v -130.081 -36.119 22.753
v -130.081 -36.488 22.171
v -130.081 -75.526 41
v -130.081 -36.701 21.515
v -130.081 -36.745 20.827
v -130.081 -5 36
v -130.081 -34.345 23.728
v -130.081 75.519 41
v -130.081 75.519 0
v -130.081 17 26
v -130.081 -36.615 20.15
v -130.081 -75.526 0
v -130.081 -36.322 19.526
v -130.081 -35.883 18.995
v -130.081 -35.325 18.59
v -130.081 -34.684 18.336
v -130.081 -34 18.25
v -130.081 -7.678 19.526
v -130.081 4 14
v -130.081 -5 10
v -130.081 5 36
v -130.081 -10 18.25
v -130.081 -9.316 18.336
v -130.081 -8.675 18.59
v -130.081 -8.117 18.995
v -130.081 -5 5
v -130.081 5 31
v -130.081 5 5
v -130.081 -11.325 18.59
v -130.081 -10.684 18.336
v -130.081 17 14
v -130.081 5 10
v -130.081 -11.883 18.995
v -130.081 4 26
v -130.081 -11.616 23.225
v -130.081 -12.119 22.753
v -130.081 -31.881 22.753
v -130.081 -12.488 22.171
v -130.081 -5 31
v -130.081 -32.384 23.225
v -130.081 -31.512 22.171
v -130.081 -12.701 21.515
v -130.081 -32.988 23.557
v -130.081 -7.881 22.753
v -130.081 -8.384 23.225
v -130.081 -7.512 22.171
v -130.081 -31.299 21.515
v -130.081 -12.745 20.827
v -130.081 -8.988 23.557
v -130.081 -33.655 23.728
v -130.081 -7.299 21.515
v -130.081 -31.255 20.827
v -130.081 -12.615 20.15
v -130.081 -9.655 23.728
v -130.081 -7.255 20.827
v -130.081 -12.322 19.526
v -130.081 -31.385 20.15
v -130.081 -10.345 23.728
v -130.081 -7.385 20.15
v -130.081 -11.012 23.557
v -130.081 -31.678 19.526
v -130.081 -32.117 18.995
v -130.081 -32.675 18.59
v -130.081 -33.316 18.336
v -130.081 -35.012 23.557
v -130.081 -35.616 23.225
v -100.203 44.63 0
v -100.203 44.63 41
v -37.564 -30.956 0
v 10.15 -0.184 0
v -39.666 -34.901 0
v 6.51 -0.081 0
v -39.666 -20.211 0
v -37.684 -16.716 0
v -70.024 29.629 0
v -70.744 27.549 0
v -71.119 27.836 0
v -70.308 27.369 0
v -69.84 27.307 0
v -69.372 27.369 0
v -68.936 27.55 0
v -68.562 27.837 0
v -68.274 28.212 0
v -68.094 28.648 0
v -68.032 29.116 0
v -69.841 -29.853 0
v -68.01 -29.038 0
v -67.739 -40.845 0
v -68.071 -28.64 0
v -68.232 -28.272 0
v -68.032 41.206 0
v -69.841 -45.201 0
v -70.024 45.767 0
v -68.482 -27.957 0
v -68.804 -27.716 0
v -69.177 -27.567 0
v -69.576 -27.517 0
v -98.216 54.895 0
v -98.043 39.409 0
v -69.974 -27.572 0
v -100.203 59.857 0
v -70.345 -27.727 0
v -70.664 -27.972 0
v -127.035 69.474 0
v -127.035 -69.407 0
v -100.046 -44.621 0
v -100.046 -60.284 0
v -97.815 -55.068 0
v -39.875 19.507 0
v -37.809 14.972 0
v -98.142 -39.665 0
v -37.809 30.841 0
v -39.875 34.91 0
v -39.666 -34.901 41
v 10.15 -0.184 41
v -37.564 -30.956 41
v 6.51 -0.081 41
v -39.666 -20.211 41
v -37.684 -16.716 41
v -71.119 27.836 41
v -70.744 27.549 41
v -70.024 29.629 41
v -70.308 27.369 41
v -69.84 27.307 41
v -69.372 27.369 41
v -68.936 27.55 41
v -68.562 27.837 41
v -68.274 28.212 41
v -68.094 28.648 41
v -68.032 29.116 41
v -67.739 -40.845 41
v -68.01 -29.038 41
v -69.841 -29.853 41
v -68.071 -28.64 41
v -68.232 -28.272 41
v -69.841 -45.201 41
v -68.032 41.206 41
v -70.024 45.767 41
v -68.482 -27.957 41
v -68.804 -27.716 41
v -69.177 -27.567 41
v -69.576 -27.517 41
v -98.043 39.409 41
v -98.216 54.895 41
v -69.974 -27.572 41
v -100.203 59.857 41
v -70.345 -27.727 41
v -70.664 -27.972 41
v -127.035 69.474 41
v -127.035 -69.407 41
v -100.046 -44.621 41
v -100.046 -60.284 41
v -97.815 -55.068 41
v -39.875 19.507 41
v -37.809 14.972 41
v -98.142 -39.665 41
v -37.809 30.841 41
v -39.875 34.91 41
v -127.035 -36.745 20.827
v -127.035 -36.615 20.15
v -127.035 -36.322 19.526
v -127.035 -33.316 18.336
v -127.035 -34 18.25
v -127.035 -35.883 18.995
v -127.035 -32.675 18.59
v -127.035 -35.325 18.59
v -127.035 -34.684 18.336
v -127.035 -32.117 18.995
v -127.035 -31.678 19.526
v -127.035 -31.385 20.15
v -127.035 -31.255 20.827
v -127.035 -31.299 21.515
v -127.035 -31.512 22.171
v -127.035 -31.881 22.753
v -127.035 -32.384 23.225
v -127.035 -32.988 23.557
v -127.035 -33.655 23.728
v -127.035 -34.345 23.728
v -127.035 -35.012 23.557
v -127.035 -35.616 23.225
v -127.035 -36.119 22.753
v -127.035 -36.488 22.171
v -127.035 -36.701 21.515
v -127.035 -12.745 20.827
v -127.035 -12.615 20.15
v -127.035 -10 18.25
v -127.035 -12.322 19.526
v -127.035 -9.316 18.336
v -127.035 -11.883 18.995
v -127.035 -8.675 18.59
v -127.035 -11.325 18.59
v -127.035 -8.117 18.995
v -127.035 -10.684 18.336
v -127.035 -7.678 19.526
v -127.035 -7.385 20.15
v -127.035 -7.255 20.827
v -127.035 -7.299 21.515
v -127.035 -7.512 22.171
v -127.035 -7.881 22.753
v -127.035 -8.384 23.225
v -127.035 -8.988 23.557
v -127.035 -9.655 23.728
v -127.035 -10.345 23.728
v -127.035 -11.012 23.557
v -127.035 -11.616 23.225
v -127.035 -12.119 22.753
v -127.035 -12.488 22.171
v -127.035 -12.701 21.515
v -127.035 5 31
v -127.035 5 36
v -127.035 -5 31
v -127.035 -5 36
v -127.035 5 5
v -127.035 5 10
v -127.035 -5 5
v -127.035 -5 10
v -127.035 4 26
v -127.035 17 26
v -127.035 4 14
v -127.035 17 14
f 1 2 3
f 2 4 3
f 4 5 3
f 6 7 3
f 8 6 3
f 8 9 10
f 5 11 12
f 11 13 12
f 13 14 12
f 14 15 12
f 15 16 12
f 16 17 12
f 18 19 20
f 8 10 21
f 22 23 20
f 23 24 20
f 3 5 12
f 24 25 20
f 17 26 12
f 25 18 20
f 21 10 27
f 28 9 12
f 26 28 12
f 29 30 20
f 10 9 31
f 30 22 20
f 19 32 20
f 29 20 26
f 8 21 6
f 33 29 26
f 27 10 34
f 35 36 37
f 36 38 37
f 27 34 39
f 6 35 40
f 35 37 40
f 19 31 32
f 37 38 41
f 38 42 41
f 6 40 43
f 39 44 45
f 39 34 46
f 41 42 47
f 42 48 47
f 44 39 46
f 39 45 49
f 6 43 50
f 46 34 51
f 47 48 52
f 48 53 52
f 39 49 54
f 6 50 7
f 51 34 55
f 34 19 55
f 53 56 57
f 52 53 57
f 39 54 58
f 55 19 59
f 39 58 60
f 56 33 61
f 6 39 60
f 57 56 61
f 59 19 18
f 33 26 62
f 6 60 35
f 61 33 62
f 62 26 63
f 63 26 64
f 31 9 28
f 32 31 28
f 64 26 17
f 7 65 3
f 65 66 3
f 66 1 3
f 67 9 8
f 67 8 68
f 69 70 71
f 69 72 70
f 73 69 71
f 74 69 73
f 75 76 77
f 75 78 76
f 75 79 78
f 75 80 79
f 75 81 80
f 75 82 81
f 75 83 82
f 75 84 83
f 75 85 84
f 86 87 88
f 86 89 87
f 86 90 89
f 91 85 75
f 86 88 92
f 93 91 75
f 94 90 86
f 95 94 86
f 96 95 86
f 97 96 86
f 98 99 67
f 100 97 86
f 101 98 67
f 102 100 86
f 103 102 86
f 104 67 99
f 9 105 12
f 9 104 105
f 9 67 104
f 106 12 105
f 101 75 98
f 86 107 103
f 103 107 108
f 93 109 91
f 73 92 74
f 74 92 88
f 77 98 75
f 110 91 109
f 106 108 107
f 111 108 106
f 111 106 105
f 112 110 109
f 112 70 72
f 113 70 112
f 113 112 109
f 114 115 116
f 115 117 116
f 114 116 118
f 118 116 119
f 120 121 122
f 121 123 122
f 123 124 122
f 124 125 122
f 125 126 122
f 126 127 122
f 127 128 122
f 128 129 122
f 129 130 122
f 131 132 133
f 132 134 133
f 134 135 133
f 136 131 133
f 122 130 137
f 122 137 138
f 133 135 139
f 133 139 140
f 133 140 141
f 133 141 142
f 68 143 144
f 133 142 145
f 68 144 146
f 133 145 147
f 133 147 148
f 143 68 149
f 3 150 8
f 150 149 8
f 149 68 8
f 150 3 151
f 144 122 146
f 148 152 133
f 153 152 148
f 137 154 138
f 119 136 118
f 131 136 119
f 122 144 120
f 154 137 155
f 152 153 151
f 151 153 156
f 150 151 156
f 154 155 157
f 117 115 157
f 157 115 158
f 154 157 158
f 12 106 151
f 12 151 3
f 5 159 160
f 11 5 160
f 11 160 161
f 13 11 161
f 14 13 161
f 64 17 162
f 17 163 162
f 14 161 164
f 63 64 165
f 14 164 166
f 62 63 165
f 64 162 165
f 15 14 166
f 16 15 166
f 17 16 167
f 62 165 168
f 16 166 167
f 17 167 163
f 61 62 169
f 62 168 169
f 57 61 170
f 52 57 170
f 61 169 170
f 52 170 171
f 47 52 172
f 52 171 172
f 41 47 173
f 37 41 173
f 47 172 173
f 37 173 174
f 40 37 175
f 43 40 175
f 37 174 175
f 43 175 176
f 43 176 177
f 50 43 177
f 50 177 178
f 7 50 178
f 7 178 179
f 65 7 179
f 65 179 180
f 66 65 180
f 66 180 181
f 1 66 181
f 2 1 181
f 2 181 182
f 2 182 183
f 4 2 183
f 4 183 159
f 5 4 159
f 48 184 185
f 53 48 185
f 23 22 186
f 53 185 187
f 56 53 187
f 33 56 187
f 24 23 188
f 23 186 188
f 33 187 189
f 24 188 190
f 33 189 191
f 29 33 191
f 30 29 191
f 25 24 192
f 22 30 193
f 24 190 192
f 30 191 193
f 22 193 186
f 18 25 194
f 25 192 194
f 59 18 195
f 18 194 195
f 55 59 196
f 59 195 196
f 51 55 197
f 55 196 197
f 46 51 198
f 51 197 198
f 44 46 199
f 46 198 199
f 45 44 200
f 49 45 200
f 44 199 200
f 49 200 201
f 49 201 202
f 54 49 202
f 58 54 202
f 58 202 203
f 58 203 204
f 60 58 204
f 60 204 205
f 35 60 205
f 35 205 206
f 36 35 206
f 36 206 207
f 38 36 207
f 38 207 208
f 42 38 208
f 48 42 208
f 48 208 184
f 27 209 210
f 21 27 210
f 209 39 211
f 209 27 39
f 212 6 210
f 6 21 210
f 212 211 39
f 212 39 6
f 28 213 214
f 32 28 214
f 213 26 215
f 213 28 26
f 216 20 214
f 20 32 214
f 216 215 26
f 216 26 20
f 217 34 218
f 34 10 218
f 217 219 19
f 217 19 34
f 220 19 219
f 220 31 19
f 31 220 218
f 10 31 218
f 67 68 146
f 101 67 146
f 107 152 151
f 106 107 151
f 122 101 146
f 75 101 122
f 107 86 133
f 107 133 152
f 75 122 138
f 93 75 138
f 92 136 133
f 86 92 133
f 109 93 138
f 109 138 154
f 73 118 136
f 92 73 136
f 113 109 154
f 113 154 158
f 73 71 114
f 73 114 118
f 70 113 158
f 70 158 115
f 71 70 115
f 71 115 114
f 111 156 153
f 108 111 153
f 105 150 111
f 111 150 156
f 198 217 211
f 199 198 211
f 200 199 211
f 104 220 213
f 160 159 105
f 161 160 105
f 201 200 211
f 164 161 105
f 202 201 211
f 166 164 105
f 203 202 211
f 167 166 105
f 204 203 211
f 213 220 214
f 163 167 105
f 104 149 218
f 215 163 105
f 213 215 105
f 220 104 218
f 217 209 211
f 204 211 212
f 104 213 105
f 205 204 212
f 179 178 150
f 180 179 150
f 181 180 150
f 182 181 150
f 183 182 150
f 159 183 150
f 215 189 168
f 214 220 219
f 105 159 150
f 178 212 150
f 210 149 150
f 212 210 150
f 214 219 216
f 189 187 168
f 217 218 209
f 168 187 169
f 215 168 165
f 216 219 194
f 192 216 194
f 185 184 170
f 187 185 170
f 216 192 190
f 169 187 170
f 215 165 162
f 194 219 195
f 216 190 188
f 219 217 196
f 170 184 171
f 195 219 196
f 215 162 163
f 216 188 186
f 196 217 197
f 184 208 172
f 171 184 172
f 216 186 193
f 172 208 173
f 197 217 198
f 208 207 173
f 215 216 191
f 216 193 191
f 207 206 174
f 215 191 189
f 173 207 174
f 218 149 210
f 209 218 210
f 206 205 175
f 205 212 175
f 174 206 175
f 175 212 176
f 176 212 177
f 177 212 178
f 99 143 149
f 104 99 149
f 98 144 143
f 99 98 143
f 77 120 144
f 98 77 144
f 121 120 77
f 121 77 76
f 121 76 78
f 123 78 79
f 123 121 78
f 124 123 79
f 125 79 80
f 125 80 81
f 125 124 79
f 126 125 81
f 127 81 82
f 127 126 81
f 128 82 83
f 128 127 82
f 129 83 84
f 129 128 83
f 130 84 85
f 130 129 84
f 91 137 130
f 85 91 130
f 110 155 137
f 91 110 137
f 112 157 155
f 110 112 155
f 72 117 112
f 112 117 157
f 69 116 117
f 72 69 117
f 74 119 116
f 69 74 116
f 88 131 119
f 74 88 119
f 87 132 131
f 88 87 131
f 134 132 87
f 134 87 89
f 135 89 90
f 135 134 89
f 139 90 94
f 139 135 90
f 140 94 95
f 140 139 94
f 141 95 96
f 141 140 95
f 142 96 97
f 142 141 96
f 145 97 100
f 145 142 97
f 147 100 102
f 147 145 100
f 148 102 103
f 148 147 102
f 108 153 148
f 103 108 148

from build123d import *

# Parameters (mm, degrees)
BOX_W                   = 3.1
BOX_H                   = 13
BOX_DEPTH               = 12
BOX001_W                = 3.1
BOX001_H                = 10
BOX001_DEPTH            = 5
BOX002_W                = 3.1
BOX002_H                = 10
BOX002_DEPTH            = 5
CYLINDER_R              = 2.75
CYLINDER_DEPTH          = 3.1
CYLINDER_PITCH_ANGLE    = 90
CYLINDER001_R           = 2.75
CYLINDER001_DEPTH       = 3.06
CYLINDER001_PITCH_ANGLE = 90
PAD001_DEPTH            = 41
POCKET_DEPTH            = 41


with BuildPart() as usb:
    # Box → Box (new body)
    with BuildSketch(Plane(origin=(-130.1, 4, 14), x_dir=(1, 0, 0), z_dir=(0, 0, 1))):
        with Locations((1.55, 6.5)):
            Rectangle(BOX_W, BOX_H)
    extrude(amount=BOX_DEPTH)


with BuildPart() as fixav:
    # Box001 → Box001 (new body)
    with BuildSketch(Plane(origin=(-130.1, -5, 5), x_dir=(1, 0, 0), z_dir=(0, 0, 1))):
        with Locations((1.55, 5)):
            Rectangle(BOX001_W, BOX001_H)
    extrude(amount=BOX001_DEPTH)


with BuildPart() as fixar:
    # Box002 → Box002 (new body)
    with BuildSketch(Plane(origin=(-130.1, -5, 31), x_dir=(1, 0, 0), z_dir=(0, 0, 1))):
        with Locations((1.55, 5)):
            Rectangle(BOX002_W, BOX002_H)
    extrude(amount=BOX002_DEPTH)


with BuildPart() as passage:
    # Cylinder → Cylinder (new body)
    with BuildSketch(Plane.XY):
        Circle(CYLINDER_R)
    extrude(amount=CYLINDER_DEPTH)


with BuildPart() as passage_1:
    # Cylinder pitch: moved
    add(passage.part.rotate(Axis((0, 0, 0), (0, 1, 0)), CYLINDER_PITCH_ANGLE))


with BuildPart() as passage_2:
    # Cylinder placement: moved
    add(passage_1.part.moved(Location((-130.1, -10, 21))))


with BuildPart() as inter:
    # Cylinder001 → Cylinder001 (new body)
    with BuildSketch(Plane.XY):
        Circle(CYLINDER001_R)
    extrude(amount=CYLINDER001_DEPTH)


with BuildPart() as inter_1:
    # Cylinder001 pitch: moved
    add(inter.part.rotate(Axis((0, 0, 0), (0, 1, 0)), CYLINDER001_PITCH_ANGLE))


with BuildPart() as inter_2:
    # Cylinder001 placement: moved
    add(inter_1.part.moved(Location((-130.09, -34, 21))))


with BuildPart() as cut004:
    # Sketch → Pad001 (new body)
    with BuildSketch(Plane.XY):
        Polygon((-130.081082, 75.519378), (-130.081082, -75.526209), (-100.046493, -44.621067), (-100.046493, -60.2838), (-69.840584, -29.852762), (-69.840584, -45.201256), (-39.66638, -20.21052), (-39.66638, -34.900669), (10.150305, -0.184029), (-39.87487, 34.909859), (-39.87487, 19.507401), (-70.024222, 45.766594), (-70.024222, 29.628657), (-100.203184, 59.856933), (-100.203184, 44.62989), align=None)
    extrude(amount=PAD001_DEPTH)

    # Sketch001 → Pocket (cut)
    with BuildSketch(Plane.XY.offset(41)):
        with BuildLine():
            Line((-71.118897, 27.836128), (-98.21559, 54.89476))
            Line((-98.21559, 54.89476), (-98.042604, 39.408949))
            Line((-98.042604, 39.408949), (-127.035297, 69.474451))
            Line((-127.035297, 69.474451), (-127.035297, -69.407334))
            Line((-127.035297, -69.407334), (-98.142096, -39.664917))
            Line((-98.142096, -39.664917), (-97.815397, -55.06776))
            Line((-97.815397, -55.06776), (-70.664267, -27.971977))
            ThreePointArc((-70.664267, -27.971977), (-68.985652, -27.629399), (-68.009835, -29.037549))
            Line((-68.009835, -29.037549), (-67.738941, -40.844618))
            Line((-67.738941, -40.844618), (-37.683933, -16.715946))
            Line((-37.683933, -16.715946), (-37.564096, -30.955577))
            Line((-37.564096, -30.955577), (6.510068, -0.080506))
            Line((6.510068, -0.080506), (-37.808934, 30.841439))
            Line((-37.808934, 30.841439), (-37.808934, 14.972198))
            Line((-37.808934, 14.972198), (-68.032287, 41.206368))
            Line((-68.032287, 41.206368), (-68.032287, 29.115915))
            ThreePointArc((-68.032287, 29.115915), (-69.148192, 27.44521), (-71.118897, 27.836128))
        make_face()
    extrude(amount=-POCKET_DEPTH, mode=Mode.SUBTRACT)

    # Cut: cut Inter
    add(inter_2.part, mode=Mode.SUBTRACT)

    # Cut001: cut Passage
    add(passage_2.part, mode=Mode.SUBTRACT)

    # Cut002: cut FixAR
    add(fixar.part, mode=Mode.SUBTRACT)

    # Cut003: cut FixAV
    add(fixav.part, mode=Mode.SUBTRACT)

    # Cut004: cut Usb
    add(usb.part, mode=Mode.SUBTRACT)


solid = cut004.part
